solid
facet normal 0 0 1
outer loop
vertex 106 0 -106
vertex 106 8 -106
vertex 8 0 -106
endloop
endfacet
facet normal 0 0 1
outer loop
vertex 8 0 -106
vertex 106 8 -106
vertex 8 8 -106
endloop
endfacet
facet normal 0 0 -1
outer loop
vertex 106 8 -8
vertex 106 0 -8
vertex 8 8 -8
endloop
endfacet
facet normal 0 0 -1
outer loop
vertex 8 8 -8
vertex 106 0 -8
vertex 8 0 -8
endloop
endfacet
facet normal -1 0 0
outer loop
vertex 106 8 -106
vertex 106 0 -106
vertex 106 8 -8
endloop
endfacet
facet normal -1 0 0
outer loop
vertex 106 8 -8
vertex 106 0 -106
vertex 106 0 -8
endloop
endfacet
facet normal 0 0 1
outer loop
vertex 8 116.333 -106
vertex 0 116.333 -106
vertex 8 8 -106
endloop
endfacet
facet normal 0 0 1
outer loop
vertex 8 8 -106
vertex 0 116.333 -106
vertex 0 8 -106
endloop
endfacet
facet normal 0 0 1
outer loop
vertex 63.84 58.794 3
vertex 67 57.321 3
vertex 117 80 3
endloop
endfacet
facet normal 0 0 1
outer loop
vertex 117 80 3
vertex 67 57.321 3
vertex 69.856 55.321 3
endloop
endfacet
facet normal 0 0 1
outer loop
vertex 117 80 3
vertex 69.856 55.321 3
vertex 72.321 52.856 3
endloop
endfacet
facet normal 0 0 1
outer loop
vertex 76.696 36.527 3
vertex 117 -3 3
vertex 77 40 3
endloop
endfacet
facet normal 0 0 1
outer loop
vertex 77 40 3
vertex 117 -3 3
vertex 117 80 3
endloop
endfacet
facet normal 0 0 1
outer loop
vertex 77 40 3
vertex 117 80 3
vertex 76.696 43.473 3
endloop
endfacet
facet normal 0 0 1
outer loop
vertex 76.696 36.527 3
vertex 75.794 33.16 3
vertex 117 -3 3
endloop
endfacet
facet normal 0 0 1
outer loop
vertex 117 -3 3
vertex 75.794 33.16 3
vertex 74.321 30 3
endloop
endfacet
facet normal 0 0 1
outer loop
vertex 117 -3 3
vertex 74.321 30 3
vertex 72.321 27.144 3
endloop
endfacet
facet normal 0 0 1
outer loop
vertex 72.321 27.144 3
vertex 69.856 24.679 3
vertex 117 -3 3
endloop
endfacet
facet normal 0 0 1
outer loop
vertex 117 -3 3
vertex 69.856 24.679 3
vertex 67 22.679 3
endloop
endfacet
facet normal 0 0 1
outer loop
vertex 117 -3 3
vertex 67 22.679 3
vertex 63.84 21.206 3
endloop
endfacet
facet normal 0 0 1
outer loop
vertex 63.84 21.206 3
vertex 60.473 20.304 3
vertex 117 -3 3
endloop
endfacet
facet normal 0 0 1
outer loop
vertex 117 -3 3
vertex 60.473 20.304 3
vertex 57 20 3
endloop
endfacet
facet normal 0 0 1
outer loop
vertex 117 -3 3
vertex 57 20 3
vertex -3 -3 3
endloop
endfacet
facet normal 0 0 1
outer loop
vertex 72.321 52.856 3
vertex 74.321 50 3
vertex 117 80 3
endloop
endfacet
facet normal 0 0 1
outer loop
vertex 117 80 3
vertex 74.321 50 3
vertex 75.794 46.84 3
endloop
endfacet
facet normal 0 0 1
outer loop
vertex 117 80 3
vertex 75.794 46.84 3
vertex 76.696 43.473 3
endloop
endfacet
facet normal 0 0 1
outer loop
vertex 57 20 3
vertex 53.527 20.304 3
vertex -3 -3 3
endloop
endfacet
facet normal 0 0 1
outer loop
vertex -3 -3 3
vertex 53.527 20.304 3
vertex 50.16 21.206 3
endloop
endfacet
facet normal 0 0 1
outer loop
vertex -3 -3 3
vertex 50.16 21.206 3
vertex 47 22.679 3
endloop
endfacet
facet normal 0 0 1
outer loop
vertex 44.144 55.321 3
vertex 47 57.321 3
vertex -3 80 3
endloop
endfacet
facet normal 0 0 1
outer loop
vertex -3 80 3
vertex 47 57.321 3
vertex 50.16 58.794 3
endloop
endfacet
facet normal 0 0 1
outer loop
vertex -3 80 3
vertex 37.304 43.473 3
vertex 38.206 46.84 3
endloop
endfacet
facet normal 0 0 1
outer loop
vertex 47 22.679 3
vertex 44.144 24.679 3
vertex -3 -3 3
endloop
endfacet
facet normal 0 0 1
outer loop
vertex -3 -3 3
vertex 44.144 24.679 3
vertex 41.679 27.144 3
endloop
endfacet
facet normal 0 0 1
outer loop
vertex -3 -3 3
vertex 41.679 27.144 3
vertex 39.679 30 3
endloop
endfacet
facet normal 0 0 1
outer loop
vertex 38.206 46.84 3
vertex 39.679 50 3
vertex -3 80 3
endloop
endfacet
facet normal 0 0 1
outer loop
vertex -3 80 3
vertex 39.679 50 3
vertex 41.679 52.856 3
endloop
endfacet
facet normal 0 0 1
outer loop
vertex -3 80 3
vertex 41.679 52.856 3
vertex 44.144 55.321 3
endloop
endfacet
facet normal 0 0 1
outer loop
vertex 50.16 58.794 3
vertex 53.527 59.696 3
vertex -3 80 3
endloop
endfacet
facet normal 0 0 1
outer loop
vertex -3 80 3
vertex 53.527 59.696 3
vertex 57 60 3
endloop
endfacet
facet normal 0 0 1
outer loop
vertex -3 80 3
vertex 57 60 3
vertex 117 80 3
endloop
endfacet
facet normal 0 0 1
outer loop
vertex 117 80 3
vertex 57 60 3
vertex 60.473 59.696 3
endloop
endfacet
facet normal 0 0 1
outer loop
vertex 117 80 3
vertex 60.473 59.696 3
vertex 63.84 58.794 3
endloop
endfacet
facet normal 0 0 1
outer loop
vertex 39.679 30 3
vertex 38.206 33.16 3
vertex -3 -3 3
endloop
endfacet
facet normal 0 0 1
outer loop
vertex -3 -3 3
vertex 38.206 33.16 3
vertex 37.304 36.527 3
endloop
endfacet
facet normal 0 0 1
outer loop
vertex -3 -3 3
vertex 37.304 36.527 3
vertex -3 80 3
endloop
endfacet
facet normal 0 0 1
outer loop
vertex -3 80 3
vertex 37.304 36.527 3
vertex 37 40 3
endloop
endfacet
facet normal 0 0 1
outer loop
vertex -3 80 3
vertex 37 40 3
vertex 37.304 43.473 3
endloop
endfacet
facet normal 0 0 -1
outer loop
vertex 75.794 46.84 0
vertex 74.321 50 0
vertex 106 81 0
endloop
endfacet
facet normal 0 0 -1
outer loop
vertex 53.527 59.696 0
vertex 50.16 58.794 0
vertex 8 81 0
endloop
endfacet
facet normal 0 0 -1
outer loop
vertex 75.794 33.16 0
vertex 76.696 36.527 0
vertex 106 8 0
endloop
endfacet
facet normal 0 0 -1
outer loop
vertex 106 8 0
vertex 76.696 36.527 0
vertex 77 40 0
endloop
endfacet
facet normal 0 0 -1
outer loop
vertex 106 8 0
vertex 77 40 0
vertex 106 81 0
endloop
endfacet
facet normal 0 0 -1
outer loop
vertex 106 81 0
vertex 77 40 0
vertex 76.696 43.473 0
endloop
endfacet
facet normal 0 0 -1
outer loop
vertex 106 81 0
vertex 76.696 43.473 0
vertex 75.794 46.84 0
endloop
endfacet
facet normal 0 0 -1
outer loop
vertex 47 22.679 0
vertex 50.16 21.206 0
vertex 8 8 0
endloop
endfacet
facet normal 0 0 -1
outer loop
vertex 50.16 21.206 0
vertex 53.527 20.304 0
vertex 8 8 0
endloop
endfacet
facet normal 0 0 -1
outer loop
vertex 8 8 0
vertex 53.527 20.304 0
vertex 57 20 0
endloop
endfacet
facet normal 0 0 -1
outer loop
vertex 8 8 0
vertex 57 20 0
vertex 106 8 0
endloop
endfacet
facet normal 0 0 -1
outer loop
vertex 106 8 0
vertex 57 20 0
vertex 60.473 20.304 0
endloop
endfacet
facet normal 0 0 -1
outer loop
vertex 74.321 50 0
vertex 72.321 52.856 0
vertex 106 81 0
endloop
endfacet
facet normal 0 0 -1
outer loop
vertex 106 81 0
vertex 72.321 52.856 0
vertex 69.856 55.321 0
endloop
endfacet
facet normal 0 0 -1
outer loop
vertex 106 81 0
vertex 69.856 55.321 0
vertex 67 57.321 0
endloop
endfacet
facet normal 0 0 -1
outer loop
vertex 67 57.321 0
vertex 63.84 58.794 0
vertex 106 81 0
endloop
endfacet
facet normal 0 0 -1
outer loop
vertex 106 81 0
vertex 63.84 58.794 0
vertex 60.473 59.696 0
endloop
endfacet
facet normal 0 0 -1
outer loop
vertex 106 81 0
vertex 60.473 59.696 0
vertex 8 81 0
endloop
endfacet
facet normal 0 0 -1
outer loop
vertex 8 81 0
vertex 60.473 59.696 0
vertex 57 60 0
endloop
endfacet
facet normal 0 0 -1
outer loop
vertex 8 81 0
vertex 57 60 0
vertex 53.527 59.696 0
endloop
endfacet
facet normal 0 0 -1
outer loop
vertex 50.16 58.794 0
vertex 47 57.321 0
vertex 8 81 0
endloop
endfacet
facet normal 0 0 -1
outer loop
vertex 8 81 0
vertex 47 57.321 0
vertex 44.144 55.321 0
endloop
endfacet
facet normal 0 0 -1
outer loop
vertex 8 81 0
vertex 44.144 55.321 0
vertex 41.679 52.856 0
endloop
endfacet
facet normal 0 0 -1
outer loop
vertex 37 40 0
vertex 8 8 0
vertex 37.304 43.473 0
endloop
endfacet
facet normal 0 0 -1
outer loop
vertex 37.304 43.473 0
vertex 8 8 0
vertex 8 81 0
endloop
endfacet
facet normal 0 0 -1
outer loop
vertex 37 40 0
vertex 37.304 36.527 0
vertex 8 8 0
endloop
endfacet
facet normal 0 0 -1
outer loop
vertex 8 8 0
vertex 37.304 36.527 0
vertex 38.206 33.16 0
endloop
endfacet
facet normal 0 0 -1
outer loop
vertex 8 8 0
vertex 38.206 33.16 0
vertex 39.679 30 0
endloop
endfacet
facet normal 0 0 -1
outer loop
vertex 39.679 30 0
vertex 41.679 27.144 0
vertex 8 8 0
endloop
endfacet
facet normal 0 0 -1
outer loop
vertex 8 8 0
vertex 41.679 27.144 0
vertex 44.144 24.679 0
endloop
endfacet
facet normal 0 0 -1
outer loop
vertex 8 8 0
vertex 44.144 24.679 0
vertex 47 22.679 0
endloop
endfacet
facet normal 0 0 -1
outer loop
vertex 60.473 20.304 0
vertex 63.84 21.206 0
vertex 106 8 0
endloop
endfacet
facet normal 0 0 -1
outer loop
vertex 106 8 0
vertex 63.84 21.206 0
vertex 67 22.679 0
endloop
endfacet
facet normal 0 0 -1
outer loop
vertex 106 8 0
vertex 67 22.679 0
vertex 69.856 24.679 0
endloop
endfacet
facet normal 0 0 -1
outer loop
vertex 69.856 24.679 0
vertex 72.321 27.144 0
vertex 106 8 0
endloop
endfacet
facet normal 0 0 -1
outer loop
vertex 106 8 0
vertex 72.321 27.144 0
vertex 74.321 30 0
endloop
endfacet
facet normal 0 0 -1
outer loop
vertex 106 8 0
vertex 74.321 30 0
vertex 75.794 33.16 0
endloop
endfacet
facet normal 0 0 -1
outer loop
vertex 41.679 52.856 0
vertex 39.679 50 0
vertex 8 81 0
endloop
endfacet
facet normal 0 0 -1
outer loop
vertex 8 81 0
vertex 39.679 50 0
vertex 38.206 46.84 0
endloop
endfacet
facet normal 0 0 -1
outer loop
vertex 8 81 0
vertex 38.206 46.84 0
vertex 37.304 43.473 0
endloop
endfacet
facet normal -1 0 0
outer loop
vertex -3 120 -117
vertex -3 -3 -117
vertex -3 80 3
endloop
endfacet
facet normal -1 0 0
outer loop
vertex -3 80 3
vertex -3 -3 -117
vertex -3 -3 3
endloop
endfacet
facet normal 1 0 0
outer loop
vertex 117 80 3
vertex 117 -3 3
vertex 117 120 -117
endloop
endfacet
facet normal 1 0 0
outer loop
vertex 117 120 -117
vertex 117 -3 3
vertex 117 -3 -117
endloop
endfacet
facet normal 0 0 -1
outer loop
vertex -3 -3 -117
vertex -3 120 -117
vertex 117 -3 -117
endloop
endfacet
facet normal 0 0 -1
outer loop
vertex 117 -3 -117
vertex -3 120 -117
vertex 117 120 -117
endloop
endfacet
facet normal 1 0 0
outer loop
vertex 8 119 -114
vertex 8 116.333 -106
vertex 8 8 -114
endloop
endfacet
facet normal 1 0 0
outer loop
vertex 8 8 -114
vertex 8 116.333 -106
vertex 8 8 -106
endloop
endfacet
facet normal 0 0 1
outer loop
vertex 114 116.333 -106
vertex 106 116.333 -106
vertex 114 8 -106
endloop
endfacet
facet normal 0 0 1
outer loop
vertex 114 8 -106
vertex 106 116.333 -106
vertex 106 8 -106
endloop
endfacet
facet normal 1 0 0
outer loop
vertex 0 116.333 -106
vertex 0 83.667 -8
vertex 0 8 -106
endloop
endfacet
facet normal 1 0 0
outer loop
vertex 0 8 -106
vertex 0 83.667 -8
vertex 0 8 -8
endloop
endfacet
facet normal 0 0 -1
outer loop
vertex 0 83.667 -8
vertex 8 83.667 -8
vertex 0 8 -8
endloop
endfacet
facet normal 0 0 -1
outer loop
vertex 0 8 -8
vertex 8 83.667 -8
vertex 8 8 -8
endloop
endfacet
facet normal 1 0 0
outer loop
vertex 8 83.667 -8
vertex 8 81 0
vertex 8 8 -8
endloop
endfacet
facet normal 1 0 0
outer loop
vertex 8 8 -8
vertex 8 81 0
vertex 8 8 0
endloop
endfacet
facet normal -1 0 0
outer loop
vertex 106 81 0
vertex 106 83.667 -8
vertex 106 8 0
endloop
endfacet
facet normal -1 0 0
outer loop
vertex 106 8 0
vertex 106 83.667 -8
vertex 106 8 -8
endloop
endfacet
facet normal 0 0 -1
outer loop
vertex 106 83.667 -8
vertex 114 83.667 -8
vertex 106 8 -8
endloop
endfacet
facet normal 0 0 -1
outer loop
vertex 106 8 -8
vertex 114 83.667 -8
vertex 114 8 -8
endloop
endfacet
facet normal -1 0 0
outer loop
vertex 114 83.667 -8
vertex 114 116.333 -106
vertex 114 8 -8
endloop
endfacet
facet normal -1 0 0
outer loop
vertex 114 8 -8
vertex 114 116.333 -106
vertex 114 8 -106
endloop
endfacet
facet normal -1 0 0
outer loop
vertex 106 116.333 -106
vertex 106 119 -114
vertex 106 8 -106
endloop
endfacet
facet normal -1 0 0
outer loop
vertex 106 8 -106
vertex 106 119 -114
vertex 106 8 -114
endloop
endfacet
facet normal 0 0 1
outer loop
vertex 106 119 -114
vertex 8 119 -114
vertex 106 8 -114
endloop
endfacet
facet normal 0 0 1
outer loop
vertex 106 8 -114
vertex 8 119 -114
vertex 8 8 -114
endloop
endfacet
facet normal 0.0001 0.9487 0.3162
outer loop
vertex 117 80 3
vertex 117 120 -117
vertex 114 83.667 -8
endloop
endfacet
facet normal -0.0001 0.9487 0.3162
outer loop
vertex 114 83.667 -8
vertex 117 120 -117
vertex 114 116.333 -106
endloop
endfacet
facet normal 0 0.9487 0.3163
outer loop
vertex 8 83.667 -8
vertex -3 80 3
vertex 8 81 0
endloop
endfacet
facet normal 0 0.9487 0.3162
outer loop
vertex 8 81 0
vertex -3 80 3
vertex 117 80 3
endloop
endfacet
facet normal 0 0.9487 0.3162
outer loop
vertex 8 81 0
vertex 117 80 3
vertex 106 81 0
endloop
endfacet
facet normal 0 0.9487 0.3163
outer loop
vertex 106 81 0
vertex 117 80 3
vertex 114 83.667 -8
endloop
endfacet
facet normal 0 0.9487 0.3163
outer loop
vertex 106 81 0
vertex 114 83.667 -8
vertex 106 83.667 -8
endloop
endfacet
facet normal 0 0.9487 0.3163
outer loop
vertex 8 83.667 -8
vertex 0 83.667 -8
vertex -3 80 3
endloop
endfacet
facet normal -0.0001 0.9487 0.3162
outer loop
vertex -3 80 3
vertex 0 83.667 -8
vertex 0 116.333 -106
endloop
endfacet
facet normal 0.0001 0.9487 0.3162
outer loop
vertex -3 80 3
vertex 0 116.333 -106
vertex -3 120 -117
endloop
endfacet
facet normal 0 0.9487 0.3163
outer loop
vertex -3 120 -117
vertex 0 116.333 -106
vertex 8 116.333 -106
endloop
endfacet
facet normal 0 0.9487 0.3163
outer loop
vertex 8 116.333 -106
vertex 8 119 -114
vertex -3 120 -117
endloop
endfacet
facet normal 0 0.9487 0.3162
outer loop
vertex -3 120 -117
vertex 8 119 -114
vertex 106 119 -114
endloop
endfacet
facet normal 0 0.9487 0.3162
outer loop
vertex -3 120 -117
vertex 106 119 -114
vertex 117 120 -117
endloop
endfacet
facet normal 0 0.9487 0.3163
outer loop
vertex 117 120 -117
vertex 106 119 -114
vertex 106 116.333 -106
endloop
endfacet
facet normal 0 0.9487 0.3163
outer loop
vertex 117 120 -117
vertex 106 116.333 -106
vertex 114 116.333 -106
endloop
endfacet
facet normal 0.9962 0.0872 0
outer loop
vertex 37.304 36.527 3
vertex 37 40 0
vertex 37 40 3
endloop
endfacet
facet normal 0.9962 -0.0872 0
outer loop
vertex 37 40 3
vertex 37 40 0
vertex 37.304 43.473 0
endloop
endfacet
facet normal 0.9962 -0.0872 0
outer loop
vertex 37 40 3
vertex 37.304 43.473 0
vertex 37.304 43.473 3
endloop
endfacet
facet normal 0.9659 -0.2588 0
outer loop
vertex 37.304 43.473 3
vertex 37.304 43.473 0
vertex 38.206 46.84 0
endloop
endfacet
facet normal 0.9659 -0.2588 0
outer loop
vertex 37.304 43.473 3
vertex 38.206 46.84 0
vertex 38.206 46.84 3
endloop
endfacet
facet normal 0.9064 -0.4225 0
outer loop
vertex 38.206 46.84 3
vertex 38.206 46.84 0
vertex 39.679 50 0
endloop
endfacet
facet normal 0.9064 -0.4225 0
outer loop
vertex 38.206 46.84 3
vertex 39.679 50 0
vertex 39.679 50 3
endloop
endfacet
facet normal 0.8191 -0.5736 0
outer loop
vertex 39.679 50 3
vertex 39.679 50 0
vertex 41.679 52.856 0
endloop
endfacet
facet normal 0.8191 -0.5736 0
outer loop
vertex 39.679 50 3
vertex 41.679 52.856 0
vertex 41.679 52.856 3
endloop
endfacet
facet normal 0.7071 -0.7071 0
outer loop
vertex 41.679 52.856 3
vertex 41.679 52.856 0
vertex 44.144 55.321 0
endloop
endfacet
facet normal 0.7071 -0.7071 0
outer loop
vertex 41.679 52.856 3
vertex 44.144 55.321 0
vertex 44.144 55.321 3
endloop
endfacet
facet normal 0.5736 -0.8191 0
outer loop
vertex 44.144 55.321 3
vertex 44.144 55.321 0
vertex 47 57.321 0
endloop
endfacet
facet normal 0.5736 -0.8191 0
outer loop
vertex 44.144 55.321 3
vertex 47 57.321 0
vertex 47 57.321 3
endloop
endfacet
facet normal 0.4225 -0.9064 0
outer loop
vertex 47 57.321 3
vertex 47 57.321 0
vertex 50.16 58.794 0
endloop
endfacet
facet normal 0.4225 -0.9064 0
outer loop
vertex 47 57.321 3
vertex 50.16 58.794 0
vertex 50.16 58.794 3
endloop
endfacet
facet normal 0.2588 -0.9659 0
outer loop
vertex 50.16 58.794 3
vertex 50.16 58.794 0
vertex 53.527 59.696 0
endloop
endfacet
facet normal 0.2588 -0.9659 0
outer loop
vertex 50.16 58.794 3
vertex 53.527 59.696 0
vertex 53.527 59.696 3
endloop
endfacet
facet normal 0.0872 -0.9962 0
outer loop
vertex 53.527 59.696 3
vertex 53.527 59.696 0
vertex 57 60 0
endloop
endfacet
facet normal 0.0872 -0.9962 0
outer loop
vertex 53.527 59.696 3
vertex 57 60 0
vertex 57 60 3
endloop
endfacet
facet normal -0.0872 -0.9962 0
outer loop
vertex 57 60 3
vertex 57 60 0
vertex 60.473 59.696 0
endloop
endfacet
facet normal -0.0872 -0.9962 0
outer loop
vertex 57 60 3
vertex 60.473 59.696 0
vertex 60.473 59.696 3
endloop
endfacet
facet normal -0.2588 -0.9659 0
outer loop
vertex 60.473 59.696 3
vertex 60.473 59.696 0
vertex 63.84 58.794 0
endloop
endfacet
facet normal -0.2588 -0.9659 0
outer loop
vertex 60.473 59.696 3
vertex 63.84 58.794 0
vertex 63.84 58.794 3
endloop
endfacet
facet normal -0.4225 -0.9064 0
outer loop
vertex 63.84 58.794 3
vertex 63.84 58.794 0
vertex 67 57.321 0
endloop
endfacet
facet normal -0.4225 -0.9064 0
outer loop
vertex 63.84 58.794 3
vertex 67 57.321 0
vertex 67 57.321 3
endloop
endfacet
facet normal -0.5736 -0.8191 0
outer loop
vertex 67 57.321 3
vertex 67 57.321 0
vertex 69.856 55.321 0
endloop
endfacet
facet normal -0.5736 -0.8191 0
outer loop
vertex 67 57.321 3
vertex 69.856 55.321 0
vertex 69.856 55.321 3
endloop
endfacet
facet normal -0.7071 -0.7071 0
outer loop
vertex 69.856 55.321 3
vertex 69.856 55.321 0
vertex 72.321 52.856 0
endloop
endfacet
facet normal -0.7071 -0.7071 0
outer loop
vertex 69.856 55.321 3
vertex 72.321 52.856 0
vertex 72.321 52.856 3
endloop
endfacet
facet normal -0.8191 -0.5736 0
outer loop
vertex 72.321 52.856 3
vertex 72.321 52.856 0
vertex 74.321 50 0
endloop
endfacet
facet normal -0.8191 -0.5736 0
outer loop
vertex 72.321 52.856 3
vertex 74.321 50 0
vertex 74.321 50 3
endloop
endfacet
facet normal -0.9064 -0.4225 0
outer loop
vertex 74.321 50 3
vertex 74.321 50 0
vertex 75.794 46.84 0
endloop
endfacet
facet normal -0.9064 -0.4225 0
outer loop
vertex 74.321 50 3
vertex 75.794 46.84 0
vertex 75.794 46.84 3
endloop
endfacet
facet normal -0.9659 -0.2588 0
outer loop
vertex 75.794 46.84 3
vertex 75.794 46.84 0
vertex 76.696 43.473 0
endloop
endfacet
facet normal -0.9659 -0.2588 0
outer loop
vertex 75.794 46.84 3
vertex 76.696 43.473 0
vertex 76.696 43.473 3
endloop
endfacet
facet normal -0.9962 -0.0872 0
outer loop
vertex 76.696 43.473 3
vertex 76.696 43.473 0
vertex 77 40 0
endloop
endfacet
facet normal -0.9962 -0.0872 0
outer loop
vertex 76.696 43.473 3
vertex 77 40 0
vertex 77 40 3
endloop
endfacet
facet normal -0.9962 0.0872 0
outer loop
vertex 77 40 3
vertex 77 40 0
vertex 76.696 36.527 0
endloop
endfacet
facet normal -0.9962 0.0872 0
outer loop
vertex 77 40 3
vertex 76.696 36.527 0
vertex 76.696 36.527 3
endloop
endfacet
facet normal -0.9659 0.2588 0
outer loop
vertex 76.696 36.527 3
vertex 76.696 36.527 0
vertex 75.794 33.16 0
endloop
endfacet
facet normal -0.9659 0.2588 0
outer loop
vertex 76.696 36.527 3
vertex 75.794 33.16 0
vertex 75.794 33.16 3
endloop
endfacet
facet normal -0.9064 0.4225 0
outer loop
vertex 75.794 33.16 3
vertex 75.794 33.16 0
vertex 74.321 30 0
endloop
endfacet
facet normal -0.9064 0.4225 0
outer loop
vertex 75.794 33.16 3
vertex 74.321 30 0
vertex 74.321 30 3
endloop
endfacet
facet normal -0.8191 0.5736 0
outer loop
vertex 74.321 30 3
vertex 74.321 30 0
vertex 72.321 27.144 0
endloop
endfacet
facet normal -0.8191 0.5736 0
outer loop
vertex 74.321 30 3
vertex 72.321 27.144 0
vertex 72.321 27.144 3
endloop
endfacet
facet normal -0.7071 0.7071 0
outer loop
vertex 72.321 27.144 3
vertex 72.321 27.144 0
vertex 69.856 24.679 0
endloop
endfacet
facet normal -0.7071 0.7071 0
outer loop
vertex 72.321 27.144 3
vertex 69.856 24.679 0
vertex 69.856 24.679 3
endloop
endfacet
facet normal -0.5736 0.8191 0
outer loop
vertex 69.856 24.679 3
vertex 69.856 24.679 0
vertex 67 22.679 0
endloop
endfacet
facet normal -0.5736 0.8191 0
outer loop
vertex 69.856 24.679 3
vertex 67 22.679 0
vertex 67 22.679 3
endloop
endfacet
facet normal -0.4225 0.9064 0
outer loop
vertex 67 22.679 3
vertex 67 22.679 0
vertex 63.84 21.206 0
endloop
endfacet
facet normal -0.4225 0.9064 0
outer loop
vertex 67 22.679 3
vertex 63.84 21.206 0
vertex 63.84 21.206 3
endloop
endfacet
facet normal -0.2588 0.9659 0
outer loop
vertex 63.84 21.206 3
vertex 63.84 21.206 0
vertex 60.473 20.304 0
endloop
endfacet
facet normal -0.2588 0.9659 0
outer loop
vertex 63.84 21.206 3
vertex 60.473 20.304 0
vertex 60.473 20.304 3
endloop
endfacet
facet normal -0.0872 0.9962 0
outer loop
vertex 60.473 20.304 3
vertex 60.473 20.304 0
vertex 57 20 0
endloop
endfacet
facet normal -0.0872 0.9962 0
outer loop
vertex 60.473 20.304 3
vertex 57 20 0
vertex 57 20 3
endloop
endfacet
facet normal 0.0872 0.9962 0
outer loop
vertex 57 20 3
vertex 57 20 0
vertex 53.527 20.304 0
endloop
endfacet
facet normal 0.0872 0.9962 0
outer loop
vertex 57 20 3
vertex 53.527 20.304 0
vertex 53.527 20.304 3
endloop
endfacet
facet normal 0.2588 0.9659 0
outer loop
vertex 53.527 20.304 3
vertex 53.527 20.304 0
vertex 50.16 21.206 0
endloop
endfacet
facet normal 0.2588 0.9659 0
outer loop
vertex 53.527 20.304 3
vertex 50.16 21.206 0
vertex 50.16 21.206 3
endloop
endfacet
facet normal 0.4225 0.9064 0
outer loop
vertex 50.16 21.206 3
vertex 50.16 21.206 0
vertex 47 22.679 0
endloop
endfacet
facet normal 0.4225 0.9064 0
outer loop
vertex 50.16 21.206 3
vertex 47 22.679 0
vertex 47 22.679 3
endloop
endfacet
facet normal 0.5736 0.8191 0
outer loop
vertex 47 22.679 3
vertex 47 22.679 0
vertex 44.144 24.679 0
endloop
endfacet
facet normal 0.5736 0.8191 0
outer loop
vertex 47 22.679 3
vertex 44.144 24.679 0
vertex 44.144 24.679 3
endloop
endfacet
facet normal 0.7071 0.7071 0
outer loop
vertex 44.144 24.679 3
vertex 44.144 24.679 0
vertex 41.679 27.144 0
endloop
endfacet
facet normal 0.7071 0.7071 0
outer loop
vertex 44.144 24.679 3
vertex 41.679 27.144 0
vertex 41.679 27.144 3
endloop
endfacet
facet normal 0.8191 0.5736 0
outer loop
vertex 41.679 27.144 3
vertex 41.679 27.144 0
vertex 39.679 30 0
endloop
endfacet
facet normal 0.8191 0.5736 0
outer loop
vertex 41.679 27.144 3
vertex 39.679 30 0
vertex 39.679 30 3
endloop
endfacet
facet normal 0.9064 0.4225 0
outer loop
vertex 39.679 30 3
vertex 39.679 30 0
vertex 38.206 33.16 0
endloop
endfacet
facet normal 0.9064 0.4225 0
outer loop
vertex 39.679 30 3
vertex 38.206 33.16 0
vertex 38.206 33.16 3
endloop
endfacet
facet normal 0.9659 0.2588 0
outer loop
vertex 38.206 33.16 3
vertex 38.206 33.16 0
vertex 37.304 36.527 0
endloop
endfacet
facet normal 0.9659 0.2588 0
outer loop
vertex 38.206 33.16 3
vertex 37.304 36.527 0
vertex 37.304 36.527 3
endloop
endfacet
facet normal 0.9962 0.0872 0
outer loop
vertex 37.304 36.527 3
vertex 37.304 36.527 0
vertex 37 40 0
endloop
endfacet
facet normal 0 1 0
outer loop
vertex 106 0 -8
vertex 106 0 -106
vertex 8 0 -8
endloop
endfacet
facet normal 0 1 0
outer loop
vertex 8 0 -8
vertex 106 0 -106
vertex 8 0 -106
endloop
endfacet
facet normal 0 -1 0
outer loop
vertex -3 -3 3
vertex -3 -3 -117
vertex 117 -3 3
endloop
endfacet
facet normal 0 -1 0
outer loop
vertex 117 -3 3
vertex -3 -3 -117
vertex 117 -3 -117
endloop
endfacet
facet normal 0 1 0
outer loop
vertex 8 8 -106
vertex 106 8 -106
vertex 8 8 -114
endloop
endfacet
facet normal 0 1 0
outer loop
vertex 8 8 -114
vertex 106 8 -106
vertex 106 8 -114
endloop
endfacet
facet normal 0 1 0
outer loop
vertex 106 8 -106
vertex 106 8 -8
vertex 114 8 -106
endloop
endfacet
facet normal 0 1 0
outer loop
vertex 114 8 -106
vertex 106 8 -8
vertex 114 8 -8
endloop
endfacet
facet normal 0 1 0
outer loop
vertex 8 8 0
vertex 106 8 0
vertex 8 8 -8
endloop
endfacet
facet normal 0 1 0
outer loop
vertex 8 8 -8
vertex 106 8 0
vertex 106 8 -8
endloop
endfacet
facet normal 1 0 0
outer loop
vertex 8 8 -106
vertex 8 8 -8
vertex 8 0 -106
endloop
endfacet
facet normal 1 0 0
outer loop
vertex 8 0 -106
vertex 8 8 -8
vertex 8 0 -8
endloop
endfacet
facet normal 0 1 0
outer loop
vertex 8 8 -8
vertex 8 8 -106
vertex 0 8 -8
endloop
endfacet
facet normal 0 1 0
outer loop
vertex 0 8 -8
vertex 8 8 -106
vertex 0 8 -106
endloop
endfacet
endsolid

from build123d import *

# Parameters (mm, degrees)
CROQUIS1_W                 = 120
CROQUIS1_H                 = 120
SALIENTE_EXTRUIR1_DEPTH    = 120
CORTAR_EXTRUIR1_DEPTH      = 120
CORTAR_EXTRUIR1_DEPTH_BACK = 120
CROQUIS3_R                 = 20
CORTAR_EXTRUIR2_DEPTH      = 120
CROQUIS4_W                 = 120
CROQUIS4_H                 = 120
SALIENTE_EXTRUIR2_DEPTH    = 3
CROQUIS4_3_W               = 98
CROQUIS4_3_H               = 8
CROQUIS4_3_W_2             = 8
CROQUIS4_3_H_2             = 98
SALIENTE_EXTRUIR3_DEPTH    = 8


with BuildPart() as part:
    # Croquis1 → Saliente-Extruir1 (new body)
    with BuildSketch(Plane(origin=(0, 0, 0), x_dir=(1, 0, 0), z_dir=(0, 1, 0))):
        with Locations((57, 57)):
            Rectangle(CROQUIS1_W, CROQUIS1_H)
        Polygon((8, 0), (106, 0), (106, 8), (114, 8), (114, 106), (106, 106), (106, 114), (8, 114), (8, 106), (0, 106), (0, 8), (8, 8), align=None, mode=Mode.SUBTRACT)
    extrude(amount=SALIENTE_EXTRUIR1_DEPTH)

    # Croquis2 → Cortar-Extruir1 (cut, two sides: drawn at the far end of the back side and taken through both)
    with BuildSketch(Plane(origin=(0, 0, 0), x_dir=(0, 0, -1), z_dir=(1, 0, 0)).offset(-CORTAR_EXTRUIR1_DEPTH_BACK)):
        Polygon((117, 120), (-3, 80), (-3, 120), align=None)
    extrude(amount=CORTAR_EXTRUIR1_DEPTH + CORTAR_EXTRUIR1_DEPTH_BACK, mode=Mode.SUBTRACT)

    # Croquis3 → Cortar-Extruir2 (cut)
    with BuildSketch(Plane.XY):
        with Locations((57, 40)):
            Circle(CROQUIS3_R)
    extrude(amount=CORTAR_EXTRUIR2_DEPTH, mode=Mode.SUBTRACT)

    # Croquis4 → Saliente-Extruir2 (add)
    with BuildSketch(Plane(origin=(0, 0, 0), x_dir=(1, 0, 0), z_dir=(0, 1, 0))):
        with Locations((57, 57)):
            Rectangle(CROQUIS4_W, CROQUIS4_H)
    extrude(amount=-SALIENTE_EXTRUIR2_DEPTH)

    # Croquis4<3> → Saliente-Extruir3 (add)
    with BuildSketch(Plane(origin=(0, 0, 0), x_dir=(1, 0, 0), z_dir=(0, 1, 0))):
        with Locations((57, 110)):
            Rectangle(CROQUIS4_3_W, CROQUIS4_3_H)
        with Locations((4, 57)):
            Rectangle(CROQUIS4_3_W_2, CROQUIS4_3_H_2)
        with Locations((57, 4)):
            Rectangle(CROQUIS4_3_W, CROQUIS4_3_H)
        with Locations((110, 57)):
            Rectangle(CROQUIS4_3_W_2, CROQUIS4_3_H_2)
    extrude(amount=SALIENTE_EXTRUIR3_DEPTH)


solid = part.part
